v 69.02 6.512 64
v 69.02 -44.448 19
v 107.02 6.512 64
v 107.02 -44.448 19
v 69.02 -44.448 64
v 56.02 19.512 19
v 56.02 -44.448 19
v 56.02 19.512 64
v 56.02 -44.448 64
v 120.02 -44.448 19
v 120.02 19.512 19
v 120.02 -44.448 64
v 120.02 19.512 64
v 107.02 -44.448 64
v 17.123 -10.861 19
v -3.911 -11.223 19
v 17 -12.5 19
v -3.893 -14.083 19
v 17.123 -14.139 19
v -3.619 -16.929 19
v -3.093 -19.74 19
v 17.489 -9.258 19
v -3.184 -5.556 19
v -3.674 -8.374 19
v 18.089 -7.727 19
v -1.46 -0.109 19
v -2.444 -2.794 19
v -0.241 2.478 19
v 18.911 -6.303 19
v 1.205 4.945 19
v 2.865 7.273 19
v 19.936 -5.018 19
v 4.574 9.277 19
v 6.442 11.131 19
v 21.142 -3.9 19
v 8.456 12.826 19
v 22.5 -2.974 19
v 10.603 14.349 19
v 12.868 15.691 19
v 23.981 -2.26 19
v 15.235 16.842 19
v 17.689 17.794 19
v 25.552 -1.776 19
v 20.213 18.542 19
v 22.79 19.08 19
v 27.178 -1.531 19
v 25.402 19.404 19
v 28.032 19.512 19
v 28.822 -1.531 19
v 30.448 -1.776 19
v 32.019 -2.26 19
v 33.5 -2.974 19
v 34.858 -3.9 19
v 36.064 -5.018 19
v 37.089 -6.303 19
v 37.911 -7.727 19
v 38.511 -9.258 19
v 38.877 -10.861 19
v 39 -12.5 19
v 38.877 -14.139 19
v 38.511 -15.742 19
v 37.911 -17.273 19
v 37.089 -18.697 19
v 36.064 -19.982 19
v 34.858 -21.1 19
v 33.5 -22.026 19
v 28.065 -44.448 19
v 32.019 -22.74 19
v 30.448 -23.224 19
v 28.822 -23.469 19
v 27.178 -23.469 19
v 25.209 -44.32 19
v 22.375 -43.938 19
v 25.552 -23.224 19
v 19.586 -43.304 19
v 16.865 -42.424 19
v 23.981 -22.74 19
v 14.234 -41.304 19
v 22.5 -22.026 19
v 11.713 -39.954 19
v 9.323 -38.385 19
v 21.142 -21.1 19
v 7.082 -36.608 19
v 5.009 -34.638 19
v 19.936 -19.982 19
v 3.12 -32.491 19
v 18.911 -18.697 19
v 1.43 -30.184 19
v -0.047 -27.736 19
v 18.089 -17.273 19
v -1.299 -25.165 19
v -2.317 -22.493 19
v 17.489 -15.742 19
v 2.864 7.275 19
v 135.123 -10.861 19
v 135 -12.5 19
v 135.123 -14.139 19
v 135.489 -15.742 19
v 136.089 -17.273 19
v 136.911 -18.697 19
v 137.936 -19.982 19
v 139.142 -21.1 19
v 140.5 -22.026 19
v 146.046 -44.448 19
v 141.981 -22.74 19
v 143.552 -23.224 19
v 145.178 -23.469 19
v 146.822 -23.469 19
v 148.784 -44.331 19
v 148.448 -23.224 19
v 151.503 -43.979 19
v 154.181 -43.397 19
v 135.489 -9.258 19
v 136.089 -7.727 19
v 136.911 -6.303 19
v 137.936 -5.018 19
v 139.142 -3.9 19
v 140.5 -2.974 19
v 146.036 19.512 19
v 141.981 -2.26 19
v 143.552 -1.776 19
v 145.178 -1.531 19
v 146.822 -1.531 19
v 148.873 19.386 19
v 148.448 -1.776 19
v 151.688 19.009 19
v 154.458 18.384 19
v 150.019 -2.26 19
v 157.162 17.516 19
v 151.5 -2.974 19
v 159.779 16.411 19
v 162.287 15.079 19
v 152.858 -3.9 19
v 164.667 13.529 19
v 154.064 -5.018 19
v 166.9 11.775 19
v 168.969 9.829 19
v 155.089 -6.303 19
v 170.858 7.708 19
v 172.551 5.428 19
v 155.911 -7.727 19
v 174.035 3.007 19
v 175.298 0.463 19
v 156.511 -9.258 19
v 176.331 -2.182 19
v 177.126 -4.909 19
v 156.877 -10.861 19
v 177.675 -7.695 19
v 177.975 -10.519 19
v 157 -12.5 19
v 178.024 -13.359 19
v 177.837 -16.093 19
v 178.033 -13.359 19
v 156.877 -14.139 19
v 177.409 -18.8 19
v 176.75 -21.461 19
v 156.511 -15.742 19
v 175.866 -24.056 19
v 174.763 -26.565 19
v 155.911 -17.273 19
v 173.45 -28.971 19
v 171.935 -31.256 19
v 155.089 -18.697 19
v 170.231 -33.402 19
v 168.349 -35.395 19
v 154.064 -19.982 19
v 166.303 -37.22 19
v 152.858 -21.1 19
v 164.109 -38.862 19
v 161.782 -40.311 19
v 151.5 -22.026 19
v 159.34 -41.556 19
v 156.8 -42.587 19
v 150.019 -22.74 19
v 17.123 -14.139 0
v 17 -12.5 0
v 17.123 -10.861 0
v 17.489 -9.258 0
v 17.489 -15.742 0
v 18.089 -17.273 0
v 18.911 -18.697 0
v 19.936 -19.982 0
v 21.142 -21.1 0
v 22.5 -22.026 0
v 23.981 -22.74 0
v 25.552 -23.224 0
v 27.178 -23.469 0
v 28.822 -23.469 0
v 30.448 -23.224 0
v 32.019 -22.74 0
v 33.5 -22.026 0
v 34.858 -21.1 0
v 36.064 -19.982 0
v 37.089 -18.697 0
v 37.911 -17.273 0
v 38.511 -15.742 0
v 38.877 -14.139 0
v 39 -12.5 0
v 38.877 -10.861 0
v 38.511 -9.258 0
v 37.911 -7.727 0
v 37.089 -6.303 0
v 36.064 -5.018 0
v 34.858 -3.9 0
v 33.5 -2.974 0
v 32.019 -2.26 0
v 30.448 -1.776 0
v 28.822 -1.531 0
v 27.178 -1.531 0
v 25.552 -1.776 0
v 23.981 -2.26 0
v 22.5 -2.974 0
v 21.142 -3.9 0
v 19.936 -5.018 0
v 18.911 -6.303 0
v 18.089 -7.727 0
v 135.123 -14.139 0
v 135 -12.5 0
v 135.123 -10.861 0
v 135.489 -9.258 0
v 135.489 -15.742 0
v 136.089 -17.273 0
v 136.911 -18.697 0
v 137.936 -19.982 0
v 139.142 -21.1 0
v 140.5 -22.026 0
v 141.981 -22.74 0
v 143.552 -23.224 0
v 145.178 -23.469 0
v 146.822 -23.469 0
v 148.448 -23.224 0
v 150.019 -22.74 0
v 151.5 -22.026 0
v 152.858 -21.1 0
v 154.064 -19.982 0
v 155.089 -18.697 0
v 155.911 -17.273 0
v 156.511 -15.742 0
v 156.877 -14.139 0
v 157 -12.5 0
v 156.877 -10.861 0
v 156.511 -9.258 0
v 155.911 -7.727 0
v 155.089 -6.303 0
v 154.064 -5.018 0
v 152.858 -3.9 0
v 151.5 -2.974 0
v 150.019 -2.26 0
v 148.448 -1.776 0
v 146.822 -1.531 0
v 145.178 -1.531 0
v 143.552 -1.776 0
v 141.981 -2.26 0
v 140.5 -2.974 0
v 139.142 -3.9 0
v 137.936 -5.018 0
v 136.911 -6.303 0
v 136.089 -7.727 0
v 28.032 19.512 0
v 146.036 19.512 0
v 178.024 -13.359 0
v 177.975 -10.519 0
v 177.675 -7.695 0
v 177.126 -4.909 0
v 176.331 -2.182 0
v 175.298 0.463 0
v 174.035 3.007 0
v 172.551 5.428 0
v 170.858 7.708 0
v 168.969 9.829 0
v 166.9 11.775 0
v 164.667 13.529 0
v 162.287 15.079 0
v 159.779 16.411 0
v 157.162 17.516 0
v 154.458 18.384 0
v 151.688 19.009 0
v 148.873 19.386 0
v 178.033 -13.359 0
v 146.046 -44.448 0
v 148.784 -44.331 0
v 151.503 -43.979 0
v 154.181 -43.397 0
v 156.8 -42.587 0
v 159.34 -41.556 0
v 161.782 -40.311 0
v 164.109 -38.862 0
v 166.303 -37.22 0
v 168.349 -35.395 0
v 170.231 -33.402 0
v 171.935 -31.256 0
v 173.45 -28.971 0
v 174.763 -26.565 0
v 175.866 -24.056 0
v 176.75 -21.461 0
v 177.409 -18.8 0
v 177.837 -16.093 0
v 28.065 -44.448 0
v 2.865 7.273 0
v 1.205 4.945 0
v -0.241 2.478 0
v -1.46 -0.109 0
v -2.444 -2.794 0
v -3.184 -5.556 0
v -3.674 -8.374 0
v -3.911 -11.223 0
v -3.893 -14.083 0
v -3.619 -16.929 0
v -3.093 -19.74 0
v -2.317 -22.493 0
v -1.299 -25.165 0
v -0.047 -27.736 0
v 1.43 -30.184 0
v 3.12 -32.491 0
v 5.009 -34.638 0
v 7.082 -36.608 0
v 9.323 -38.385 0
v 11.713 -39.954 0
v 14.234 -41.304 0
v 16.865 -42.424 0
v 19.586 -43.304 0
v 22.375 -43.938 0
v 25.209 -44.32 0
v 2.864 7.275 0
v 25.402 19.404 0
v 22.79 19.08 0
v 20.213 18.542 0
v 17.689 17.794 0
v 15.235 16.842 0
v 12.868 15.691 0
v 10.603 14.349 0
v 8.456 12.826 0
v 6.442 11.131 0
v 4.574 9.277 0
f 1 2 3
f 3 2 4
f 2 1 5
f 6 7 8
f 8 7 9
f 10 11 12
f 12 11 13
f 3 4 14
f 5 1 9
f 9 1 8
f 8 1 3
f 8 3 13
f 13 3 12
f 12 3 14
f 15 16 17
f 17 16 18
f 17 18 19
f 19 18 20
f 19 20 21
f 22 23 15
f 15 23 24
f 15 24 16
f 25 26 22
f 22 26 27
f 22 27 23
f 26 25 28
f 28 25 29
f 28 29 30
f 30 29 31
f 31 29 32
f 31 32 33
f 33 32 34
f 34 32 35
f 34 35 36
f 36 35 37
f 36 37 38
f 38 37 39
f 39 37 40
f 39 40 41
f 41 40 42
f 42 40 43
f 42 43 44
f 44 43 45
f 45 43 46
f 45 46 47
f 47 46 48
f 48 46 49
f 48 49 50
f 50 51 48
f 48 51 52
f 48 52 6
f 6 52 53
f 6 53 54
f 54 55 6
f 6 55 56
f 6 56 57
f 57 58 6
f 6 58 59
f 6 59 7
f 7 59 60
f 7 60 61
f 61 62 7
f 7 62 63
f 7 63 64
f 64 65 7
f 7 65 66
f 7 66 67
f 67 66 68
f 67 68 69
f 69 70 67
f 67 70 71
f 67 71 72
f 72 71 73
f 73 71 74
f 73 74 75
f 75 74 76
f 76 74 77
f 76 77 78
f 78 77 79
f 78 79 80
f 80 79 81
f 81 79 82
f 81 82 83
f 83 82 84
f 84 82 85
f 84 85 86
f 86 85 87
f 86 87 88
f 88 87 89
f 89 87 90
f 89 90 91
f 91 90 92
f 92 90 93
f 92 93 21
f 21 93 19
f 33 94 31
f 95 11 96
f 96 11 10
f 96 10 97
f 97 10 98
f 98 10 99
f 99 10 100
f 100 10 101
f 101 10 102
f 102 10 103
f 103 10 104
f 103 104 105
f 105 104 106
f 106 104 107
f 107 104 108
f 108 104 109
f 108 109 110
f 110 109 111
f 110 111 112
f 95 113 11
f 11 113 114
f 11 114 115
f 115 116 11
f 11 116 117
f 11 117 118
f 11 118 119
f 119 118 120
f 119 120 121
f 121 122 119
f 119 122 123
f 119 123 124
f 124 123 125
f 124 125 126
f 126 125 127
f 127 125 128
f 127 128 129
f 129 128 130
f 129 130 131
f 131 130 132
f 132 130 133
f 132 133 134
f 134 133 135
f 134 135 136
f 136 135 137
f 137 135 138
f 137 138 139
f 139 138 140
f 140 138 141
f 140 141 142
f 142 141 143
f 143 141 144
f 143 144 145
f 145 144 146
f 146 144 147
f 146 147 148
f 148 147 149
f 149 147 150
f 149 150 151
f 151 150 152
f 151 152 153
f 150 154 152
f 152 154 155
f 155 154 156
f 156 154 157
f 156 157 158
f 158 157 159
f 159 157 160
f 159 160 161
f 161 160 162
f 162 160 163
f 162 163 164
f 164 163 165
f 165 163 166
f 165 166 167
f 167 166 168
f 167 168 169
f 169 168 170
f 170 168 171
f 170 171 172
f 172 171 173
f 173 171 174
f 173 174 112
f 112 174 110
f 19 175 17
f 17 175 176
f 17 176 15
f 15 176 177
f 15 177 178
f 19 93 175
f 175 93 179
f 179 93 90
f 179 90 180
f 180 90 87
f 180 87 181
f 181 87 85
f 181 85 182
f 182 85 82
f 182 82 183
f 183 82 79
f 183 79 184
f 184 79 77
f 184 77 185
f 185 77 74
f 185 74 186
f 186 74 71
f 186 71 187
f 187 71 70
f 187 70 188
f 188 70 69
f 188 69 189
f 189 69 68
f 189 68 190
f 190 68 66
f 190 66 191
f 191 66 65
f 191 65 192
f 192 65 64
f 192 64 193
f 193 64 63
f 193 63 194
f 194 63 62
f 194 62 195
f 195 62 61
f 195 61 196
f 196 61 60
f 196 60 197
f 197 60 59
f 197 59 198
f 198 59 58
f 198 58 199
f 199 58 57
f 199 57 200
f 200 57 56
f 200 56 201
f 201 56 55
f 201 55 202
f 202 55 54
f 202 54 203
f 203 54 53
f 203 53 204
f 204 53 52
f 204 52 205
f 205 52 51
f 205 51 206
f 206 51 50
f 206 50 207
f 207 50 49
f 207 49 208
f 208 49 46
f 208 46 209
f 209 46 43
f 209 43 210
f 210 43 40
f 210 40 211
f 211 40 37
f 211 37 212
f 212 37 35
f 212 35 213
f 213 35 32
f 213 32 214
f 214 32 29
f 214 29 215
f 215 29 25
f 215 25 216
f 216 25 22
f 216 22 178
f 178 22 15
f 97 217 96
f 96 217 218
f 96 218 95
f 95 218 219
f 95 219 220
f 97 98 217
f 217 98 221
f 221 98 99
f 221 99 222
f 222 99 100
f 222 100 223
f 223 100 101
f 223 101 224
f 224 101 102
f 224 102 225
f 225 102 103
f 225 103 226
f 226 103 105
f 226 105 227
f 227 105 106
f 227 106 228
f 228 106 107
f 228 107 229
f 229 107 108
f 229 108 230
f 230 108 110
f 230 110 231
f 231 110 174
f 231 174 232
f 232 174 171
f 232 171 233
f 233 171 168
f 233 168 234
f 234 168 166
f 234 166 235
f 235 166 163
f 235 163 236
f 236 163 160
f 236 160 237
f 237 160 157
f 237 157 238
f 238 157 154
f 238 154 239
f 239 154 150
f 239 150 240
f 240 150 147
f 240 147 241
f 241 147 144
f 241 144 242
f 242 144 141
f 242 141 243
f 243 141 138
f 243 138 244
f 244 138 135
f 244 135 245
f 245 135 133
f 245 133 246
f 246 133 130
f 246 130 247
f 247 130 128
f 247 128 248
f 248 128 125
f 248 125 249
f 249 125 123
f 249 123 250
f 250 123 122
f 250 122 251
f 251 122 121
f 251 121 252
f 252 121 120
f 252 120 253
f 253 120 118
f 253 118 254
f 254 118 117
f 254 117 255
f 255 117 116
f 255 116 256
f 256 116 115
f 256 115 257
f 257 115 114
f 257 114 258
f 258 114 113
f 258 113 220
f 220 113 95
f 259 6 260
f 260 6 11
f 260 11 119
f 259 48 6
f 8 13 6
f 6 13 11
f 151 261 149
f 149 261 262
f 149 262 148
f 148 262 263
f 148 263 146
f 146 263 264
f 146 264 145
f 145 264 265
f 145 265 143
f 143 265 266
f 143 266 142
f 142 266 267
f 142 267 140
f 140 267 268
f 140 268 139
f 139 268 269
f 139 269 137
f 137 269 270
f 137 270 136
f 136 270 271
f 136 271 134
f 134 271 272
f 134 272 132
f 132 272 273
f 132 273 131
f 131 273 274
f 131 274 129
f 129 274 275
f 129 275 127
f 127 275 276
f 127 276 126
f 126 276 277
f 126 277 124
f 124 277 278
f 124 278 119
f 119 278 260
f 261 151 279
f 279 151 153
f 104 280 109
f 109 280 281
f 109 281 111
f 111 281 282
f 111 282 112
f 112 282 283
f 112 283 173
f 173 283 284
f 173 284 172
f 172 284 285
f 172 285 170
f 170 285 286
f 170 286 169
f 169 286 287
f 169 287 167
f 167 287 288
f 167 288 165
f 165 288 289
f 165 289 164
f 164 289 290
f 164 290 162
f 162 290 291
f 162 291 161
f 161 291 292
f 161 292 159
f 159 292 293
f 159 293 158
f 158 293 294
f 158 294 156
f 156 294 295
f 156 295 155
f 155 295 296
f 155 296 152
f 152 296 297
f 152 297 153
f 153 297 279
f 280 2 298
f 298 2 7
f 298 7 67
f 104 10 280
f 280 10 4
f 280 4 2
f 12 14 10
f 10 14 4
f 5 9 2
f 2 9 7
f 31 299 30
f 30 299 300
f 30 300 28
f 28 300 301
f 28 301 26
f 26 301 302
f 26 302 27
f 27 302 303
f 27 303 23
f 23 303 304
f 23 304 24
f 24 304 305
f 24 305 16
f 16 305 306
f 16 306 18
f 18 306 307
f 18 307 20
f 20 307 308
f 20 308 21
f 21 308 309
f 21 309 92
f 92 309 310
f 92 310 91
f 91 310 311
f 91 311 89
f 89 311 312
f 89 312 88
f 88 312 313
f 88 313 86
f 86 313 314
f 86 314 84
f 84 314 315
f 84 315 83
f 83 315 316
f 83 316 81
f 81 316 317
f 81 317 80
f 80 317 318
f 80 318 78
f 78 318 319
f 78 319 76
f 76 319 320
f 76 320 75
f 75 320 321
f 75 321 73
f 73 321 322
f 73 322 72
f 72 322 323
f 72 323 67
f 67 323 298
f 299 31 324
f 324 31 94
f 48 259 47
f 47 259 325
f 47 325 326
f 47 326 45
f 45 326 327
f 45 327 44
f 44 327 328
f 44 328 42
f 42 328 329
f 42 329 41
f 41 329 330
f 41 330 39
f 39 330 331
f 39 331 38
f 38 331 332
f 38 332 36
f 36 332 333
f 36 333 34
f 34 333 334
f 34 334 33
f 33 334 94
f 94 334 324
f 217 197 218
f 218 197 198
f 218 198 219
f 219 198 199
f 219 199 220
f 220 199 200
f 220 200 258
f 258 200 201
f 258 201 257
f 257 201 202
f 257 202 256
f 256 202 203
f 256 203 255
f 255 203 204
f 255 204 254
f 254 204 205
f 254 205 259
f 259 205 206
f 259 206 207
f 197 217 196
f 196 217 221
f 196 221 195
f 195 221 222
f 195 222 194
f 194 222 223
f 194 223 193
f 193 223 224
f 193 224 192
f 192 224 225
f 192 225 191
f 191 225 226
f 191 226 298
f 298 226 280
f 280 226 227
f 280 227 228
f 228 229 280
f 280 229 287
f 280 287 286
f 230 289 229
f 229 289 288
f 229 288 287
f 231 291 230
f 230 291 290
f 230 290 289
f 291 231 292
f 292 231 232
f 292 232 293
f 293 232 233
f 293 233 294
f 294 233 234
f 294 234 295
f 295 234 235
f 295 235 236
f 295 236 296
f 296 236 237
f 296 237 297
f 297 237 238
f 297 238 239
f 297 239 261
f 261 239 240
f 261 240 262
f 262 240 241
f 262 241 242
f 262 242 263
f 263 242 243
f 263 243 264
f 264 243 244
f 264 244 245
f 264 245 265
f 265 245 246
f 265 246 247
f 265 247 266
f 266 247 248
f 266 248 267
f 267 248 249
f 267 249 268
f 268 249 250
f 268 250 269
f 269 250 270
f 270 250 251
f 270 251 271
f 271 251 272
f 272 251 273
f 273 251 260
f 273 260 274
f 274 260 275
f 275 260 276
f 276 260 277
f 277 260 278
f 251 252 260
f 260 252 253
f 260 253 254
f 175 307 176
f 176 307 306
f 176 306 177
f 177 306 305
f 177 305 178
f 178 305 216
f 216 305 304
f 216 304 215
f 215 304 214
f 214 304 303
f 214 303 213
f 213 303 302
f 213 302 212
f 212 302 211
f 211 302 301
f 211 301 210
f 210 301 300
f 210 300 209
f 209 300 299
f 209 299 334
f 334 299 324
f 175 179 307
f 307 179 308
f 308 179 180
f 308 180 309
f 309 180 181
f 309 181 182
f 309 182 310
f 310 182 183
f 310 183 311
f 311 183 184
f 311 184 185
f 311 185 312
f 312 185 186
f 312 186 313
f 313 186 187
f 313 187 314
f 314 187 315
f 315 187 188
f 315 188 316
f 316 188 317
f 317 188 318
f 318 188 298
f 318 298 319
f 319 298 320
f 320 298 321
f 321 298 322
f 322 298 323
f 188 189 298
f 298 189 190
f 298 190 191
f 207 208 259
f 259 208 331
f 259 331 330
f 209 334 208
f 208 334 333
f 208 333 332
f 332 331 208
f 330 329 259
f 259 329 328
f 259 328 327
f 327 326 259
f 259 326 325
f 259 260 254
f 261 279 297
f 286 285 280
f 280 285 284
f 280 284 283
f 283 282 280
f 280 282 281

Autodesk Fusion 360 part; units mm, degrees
sketch "Sketch1" plane through (0, 0, 0) normal (0, 0, 1) x (1, 0, 0)
  line L0 (28.0323, 19.5121) -> (146.0361, 19.5121)
  line L1 (178.0242, -13.3588) -> (178.0327, -13.3589)
  line L2 (146.0457, -44.448) -> (28.0654, -44.448)
  line L3 (2.8649, 7.2735) -> (2.8643, 7.275)
  arc A0 (2.8649, 7.2735) -> (28.0654, -44.448) centre (28.0654, -12.448) ccw
  arc A1 (28.0323, 19.5121) -> (2.8643, 7.275) centre (28.0323, -12.4879) ccw
  arc A2 (178.0242, -13.3588) -> (146.0361, 19.5121) centre (146.0361, -12.4879) ccw
  arc A3 (146.0457, -44.448) -> (178.0327, -13.3589) centre (146.0457, -12.448) ccw
  circle A4 centre (28, -12.5) radius 11
  circle A5 centre (146, -12.5) radius 11
  line L4 (55.9792, 19.5121) -> (119.9792, 19.5121)
  line L5 (119.9792, 19.5121) -> (119.9792, -44.4879)
  line L6 (119.9792, -44.4879) -> (55.9792, -44.4879)
  line L7 (55.9792, -44.4879) -> (55.9792, 19.5121)
  point P0 (-1.9465, 19.5121)
  point P1 (176.0535, 19.5121)
  point P2 (0.3124, -44.448)
  dimension "d1" = 178
  dimension "d2" = 64
  dimension "d3" = 32
  dimension "d4" = 32
  dimension "d5" = 32
  dimension "d6" = 32
  dimension "d7" = 22
  dimension "d8" = 22
  dimension "d9" = 64
  dimension "d10" = 64
extrude "Extrude1" add sketch "Sketch1" along normal blind 19 contours L0 L2 A0 A1 L7 | L0 L2 L4 L5 L7 | L0 L1 L2 A2 A3 L5
sketch "Sketch2" plane through (0, 0, 19) normal (0, 0, 1) x (-1, 0, 0)
  circle A0 centre (-146, 12.5) radius 11
  circle A1 centre (-28, 12.5) radius 11
  arc A2 (-28.0323, -19.5121) -> (-2.8643, -7.275) centre (-28.0323, 12.4879) ccw
  line L0 (-2.8643, -7.275) -> (-2.8649, -7.2735)
  arc A3 (-2.8649, -7.2735) -> (-28.0654, 44.448) centre (-28.0654, 12.448) ccw
  line L1 (-28.0654, 44.448) -> (-146.0457, 44.448)
  arc A4 (-146.0457, 44.448) -> (-178.0327, 13.3589) centre (-146.0457, 12.448) ccw
  line L2 (-178.0327, 13.3589) -> (-178.0242, 13.3588)
  arc A5 (-178.0242, 13.3588) -> (-146.0361, -19.5121) centre (-146.0361, 12.4879) ccw
  line L3 (-146.0361, -19.5121) -> (-28.0323, -19.5121)
  line L4 (-56.0201, -19.5121) -> (-120.0201, -19.5121)
  line L5 (-120.0201, -19.5121) -> (-120.0201, 44.4879)
  line L6 (-120.0201, 44.4879) -> (-56.0201, 44.4879)
  line L7 (-56.0201, 44.4879) -> (-56.0201, -19.5121)
  line L8 (-56.0201, 44.4879) -> (-69.0201, 44.4879)
  line L9 (-69.0201, 44.4879) -> (-69.0201, -6.5121)
  line L10 (-69.0201, -6.5121) -> (-107.0201, -6.5121)
  line L11 (-107.0201, -6.5121) -> (-107.0201, 44.4879)
  line L12 (-107.0201, 44.4879) -> (-120.0201, 44.4879)
  dimension "d13" = 64
  dimension "d14" = 64
  dimension "d15" = 13
  dimension "d16" = 51
  dimension "d17" = 38
  dimension "d18" = 51
extrude "Extrude2" add sketch "Sketch2" along normal blind 45 contours L1 L3 L4 L5 L7 L9 L10 L11
sketch "Sketch3" plane through (69.0201, 0, 0) normal (1, 0, 0) x (0, 1, 0)
  line L0 (-44.448, 19) -> (6.5121, 19)
  line L1 (6.5121, 19) -> (6.5121, 64)
  line L2 (6.5121, 64) -> (-44.448, 64)
  line L3 (-44.448, 64) -> (-44.448, 19)
  line L4 (-44.448, 19) -> (6.552, 19)
  line L5 (6.552, 19) -> (6.5121, 64)
  line L6 (6.5121, 64) -> (-44.448, 19)
  dimension "d21" = 51
extrude "Extrude3" add sketch "Sketch3" along normal blind 38 contours L0 L1 L4 L6
